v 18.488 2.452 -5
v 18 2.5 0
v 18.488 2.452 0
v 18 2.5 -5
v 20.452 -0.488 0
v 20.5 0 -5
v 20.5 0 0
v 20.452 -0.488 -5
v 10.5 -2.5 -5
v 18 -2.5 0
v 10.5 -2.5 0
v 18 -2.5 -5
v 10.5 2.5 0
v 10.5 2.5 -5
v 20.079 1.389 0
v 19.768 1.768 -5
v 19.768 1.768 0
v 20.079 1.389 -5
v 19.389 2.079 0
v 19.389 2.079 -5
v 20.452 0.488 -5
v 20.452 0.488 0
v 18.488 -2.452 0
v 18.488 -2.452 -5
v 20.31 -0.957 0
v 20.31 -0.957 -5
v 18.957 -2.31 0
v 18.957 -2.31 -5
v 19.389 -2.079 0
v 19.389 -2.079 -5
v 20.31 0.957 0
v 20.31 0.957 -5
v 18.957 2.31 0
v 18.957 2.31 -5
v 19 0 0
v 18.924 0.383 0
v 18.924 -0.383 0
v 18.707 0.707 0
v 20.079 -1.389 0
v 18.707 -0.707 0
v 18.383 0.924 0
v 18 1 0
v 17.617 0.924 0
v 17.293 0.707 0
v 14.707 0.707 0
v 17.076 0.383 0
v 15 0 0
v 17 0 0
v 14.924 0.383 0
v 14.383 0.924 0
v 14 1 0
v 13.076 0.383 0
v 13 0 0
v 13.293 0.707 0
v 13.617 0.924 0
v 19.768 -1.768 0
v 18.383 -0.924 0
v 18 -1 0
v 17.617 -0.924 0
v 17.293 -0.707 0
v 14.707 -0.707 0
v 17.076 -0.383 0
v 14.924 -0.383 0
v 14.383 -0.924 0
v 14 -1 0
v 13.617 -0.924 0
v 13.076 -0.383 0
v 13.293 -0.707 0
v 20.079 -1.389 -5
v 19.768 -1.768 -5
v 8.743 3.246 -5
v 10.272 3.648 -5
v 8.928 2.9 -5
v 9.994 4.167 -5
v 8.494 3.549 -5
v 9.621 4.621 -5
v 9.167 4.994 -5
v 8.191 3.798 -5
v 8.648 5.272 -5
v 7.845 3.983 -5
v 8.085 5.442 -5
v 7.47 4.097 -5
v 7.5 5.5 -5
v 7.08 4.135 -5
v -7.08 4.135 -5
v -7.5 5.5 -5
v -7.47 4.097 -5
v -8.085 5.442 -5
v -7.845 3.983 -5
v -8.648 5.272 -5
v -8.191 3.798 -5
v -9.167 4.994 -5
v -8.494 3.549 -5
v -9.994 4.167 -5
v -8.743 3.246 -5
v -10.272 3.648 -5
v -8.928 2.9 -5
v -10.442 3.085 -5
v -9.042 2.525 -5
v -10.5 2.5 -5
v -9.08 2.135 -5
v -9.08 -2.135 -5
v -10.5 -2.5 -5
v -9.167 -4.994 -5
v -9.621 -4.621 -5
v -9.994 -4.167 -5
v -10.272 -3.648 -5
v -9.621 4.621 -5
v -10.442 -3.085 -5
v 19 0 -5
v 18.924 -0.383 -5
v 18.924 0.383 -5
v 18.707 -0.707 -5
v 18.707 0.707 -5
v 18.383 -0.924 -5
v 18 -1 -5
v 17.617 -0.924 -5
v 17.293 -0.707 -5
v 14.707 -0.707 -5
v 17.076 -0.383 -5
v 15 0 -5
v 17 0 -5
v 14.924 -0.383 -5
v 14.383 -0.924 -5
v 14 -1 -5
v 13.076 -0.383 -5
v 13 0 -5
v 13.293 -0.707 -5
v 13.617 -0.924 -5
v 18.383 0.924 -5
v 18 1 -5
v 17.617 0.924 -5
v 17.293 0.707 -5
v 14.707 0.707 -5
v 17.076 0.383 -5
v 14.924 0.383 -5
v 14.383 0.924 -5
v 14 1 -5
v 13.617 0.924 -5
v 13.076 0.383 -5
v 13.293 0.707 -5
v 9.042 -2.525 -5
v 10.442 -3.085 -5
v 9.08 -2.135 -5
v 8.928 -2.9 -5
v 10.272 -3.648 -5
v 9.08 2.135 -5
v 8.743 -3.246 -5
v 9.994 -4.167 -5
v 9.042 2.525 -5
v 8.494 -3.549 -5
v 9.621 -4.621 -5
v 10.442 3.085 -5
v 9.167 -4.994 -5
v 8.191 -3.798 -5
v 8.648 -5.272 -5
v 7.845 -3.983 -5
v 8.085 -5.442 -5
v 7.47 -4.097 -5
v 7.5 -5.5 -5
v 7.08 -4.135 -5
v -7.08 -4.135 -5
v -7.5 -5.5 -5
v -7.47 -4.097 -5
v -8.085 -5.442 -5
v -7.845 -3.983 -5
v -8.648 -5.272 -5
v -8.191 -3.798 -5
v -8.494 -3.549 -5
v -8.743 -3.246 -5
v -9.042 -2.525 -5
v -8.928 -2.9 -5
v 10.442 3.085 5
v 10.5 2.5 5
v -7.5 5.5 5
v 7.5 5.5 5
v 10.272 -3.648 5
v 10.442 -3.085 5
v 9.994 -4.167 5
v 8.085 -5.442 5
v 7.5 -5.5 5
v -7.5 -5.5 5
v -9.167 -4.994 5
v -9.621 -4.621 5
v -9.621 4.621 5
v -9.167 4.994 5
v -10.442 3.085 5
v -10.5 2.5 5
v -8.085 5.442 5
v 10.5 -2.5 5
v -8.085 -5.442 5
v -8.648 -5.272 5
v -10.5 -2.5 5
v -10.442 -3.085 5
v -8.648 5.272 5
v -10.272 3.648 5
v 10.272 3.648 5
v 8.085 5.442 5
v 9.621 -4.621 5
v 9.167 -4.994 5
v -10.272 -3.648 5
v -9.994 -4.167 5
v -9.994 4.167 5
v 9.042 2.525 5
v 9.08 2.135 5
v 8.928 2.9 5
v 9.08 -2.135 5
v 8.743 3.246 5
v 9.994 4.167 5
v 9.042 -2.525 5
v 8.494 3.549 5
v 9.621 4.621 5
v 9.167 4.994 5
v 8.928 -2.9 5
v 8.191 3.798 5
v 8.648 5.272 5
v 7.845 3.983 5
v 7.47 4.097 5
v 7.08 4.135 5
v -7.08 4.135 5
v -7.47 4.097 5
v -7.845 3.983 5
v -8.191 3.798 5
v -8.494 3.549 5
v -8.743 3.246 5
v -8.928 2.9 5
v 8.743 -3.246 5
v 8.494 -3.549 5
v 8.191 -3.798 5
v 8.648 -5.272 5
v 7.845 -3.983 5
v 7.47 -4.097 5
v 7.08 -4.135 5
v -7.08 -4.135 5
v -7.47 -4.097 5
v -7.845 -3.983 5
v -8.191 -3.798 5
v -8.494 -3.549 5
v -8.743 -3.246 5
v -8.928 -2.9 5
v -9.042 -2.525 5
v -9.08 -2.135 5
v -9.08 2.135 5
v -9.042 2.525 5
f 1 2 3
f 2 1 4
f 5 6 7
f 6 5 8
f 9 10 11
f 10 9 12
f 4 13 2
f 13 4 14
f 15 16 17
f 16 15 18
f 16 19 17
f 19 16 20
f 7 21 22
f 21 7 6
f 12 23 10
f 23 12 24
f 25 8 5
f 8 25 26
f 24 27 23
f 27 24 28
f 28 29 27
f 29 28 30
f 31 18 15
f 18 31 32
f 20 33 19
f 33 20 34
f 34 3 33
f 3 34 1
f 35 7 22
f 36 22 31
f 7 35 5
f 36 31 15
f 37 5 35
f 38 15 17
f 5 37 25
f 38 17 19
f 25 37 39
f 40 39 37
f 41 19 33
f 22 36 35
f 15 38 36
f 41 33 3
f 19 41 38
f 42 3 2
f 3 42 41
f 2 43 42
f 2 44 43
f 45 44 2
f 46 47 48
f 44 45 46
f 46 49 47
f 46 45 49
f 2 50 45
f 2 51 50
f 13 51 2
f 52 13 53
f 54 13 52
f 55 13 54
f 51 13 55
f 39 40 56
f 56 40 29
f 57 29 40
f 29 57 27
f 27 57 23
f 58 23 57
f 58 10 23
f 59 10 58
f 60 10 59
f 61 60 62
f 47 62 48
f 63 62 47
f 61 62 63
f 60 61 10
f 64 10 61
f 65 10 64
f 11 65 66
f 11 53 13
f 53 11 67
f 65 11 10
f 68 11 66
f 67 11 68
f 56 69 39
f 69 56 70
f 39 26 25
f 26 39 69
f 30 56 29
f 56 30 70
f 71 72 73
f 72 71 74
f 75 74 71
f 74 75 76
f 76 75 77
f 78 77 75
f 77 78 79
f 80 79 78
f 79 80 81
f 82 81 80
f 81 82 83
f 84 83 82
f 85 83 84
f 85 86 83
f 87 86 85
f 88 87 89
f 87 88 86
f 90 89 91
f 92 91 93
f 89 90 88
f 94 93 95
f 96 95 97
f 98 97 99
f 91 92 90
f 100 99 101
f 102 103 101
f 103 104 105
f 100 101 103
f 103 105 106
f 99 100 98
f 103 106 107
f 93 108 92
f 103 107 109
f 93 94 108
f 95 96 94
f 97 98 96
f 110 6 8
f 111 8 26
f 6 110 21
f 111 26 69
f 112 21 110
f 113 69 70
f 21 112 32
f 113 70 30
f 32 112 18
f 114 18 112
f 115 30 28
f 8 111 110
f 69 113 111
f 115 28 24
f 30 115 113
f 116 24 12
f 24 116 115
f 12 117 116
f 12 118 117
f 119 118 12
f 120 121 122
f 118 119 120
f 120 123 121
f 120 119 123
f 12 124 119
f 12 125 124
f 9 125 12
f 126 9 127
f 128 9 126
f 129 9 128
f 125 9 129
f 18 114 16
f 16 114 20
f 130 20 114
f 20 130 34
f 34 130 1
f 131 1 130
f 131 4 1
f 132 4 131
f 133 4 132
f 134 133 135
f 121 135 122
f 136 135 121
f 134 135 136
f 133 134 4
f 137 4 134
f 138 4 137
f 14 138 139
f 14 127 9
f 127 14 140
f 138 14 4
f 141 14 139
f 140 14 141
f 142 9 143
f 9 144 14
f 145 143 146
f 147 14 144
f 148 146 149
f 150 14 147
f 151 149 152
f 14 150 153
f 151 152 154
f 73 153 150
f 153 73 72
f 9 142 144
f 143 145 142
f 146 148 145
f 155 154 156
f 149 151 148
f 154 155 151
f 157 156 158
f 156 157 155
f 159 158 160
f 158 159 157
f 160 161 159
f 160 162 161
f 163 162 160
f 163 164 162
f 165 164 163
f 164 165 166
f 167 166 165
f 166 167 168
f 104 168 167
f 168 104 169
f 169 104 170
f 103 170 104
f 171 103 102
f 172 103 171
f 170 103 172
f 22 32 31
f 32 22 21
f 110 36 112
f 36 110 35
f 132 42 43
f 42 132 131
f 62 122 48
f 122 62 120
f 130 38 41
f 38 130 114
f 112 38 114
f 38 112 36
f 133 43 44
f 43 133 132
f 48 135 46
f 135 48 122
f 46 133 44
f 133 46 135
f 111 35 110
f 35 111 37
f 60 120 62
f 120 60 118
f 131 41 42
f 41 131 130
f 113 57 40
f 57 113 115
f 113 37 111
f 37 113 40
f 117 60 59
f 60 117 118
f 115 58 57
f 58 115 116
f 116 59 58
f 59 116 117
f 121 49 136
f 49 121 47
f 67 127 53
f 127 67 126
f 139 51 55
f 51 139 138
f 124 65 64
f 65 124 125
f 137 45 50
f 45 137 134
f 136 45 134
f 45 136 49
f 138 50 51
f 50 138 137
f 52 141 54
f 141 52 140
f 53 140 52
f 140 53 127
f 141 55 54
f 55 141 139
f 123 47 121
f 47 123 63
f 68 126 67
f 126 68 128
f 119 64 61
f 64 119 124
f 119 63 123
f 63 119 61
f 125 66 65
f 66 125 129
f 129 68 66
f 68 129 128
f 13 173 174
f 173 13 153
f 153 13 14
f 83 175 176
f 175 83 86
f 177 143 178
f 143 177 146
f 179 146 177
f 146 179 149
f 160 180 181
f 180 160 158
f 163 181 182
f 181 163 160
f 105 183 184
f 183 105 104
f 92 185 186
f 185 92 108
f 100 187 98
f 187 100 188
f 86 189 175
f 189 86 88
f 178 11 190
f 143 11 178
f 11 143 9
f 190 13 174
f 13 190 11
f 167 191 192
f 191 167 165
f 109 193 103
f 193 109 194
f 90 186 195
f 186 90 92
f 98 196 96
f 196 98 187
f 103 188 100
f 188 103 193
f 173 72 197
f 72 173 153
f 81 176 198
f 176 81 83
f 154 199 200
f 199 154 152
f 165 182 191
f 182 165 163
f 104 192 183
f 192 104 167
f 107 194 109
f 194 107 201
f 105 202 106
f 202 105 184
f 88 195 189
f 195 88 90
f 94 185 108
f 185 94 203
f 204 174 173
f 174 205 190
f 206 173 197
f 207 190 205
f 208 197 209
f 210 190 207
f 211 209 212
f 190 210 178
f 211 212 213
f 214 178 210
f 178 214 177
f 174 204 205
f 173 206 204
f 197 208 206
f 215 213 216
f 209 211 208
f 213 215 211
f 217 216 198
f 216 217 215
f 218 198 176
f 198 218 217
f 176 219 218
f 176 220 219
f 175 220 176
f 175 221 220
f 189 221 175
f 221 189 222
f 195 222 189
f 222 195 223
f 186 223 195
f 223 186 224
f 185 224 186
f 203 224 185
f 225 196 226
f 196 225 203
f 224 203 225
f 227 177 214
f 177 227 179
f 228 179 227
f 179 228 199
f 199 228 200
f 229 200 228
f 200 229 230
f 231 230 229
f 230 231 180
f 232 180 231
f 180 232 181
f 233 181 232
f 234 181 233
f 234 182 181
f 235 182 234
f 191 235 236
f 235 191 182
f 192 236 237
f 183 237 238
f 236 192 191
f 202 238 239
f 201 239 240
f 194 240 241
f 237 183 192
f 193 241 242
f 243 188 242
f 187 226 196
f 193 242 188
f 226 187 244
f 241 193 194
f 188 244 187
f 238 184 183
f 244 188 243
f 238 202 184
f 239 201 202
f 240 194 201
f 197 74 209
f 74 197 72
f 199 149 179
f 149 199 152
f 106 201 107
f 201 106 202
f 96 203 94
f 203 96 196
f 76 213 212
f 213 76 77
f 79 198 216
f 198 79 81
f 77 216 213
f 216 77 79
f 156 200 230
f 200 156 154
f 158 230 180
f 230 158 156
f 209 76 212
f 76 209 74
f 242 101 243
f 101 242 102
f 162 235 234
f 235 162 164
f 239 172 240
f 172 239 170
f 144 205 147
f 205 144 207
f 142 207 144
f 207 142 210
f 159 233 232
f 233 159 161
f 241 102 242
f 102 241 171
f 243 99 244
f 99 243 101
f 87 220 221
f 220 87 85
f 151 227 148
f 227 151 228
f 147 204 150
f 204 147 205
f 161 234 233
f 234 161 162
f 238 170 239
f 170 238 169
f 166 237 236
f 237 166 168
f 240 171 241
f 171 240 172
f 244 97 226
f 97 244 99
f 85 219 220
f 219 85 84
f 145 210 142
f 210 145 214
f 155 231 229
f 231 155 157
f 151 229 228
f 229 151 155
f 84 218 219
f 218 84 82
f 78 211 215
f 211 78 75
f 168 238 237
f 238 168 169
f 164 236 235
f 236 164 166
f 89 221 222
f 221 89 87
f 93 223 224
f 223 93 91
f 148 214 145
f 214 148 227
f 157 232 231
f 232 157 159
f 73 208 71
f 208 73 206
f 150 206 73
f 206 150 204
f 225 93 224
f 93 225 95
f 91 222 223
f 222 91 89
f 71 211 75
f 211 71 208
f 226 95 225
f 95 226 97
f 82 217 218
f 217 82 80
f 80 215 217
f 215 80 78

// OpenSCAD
module rcube(size, diam, center=false) {
    translate(center?[diam/2-size[0]/2, diam/2-size[1]/2, -size[2]/2]:[diam/2, diam/2, 0])
        hull()
            for (tr=[[0,0,0], [0,size[1]-diam,0], [size[0]-diam,size[1]-diam,0], [size[0]-diam,0,0]])
                translate(tr)
                    cylinder(d=diam, h=size[2]);
}


difference() {
    rcube([21,11,10], 6, center=true, $fn=32);
    rcube([17.56+0.6,7.67+0.6,10.01], 4, center=true, $fn=32);
}

translate([0.5,0,0])
difference() {
    union() {
        translate([15,0,-2.5])
            rcube([10,5,5], 5, center=true, $fn=32);
        translate([13,0,-2.5])
            cube([8,5,5], center=true, $fn=32);
    }

    translate([17.5,0,-2.5])
        cylinder(d=2, h=6, center=true, $fn=16);
    translate([13.5,0,-2.5])
        cylinder(d=2, h=6, center=true, $fn=16);
}
